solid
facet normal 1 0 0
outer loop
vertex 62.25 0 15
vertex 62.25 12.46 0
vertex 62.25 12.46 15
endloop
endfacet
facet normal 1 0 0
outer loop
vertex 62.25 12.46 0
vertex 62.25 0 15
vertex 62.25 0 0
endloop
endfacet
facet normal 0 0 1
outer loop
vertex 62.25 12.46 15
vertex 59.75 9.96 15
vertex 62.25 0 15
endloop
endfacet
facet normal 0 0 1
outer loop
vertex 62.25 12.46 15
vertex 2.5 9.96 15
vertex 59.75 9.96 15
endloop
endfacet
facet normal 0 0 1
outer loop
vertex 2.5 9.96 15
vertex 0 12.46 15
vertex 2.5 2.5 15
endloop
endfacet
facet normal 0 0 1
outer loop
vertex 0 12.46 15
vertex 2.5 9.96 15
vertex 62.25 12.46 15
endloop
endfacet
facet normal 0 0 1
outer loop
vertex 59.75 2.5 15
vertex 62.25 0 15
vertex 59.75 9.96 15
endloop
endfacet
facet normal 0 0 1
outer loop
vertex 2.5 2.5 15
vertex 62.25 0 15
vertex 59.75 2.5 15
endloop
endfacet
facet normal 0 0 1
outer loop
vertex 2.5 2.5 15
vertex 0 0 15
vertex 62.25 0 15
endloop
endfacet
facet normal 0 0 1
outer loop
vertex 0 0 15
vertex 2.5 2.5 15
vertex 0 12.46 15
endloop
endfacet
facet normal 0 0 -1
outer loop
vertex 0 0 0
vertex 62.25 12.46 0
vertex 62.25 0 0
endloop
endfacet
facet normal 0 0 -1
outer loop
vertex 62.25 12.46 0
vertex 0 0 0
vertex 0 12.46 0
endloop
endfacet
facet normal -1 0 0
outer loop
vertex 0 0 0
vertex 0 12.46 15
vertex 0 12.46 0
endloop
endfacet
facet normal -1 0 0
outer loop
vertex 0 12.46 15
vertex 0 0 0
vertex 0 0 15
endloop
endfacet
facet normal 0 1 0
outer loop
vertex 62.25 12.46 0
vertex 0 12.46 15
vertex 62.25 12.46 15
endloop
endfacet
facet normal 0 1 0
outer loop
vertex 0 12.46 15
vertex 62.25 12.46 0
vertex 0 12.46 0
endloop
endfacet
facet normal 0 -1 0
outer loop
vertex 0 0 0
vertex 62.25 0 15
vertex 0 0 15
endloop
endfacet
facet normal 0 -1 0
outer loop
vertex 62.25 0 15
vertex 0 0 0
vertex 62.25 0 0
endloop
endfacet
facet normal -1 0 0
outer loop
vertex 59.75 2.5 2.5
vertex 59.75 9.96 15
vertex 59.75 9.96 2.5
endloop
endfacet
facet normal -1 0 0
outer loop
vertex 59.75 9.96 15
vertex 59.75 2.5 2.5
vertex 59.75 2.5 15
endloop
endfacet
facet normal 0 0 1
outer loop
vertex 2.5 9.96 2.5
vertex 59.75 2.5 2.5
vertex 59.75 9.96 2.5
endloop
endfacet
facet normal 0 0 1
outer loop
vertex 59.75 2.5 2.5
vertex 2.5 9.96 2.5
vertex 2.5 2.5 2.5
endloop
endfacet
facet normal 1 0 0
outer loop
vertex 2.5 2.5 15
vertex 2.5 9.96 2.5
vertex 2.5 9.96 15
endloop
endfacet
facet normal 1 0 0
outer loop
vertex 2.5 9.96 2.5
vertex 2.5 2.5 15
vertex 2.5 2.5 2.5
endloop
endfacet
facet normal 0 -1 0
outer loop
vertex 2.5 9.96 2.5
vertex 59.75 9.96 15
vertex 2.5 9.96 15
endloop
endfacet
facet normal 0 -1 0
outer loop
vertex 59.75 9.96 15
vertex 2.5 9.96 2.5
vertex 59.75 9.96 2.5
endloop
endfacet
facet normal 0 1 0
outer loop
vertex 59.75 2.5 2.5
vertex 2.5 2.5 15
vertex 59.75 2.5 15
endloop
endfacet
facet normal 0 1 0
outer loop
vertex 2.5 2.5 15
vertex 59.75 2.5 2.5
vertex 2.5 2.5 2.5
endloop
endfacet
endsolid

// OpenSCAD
x = 57.25;
y = 7.46;
z = 10;
walls = 2.5;

difference() {
    cube([x+(walls*2), y+(walls*2), z+(walls*2)]);
    translate([walls, walls, walls])
        cube([x, y, z+walls]);
}
